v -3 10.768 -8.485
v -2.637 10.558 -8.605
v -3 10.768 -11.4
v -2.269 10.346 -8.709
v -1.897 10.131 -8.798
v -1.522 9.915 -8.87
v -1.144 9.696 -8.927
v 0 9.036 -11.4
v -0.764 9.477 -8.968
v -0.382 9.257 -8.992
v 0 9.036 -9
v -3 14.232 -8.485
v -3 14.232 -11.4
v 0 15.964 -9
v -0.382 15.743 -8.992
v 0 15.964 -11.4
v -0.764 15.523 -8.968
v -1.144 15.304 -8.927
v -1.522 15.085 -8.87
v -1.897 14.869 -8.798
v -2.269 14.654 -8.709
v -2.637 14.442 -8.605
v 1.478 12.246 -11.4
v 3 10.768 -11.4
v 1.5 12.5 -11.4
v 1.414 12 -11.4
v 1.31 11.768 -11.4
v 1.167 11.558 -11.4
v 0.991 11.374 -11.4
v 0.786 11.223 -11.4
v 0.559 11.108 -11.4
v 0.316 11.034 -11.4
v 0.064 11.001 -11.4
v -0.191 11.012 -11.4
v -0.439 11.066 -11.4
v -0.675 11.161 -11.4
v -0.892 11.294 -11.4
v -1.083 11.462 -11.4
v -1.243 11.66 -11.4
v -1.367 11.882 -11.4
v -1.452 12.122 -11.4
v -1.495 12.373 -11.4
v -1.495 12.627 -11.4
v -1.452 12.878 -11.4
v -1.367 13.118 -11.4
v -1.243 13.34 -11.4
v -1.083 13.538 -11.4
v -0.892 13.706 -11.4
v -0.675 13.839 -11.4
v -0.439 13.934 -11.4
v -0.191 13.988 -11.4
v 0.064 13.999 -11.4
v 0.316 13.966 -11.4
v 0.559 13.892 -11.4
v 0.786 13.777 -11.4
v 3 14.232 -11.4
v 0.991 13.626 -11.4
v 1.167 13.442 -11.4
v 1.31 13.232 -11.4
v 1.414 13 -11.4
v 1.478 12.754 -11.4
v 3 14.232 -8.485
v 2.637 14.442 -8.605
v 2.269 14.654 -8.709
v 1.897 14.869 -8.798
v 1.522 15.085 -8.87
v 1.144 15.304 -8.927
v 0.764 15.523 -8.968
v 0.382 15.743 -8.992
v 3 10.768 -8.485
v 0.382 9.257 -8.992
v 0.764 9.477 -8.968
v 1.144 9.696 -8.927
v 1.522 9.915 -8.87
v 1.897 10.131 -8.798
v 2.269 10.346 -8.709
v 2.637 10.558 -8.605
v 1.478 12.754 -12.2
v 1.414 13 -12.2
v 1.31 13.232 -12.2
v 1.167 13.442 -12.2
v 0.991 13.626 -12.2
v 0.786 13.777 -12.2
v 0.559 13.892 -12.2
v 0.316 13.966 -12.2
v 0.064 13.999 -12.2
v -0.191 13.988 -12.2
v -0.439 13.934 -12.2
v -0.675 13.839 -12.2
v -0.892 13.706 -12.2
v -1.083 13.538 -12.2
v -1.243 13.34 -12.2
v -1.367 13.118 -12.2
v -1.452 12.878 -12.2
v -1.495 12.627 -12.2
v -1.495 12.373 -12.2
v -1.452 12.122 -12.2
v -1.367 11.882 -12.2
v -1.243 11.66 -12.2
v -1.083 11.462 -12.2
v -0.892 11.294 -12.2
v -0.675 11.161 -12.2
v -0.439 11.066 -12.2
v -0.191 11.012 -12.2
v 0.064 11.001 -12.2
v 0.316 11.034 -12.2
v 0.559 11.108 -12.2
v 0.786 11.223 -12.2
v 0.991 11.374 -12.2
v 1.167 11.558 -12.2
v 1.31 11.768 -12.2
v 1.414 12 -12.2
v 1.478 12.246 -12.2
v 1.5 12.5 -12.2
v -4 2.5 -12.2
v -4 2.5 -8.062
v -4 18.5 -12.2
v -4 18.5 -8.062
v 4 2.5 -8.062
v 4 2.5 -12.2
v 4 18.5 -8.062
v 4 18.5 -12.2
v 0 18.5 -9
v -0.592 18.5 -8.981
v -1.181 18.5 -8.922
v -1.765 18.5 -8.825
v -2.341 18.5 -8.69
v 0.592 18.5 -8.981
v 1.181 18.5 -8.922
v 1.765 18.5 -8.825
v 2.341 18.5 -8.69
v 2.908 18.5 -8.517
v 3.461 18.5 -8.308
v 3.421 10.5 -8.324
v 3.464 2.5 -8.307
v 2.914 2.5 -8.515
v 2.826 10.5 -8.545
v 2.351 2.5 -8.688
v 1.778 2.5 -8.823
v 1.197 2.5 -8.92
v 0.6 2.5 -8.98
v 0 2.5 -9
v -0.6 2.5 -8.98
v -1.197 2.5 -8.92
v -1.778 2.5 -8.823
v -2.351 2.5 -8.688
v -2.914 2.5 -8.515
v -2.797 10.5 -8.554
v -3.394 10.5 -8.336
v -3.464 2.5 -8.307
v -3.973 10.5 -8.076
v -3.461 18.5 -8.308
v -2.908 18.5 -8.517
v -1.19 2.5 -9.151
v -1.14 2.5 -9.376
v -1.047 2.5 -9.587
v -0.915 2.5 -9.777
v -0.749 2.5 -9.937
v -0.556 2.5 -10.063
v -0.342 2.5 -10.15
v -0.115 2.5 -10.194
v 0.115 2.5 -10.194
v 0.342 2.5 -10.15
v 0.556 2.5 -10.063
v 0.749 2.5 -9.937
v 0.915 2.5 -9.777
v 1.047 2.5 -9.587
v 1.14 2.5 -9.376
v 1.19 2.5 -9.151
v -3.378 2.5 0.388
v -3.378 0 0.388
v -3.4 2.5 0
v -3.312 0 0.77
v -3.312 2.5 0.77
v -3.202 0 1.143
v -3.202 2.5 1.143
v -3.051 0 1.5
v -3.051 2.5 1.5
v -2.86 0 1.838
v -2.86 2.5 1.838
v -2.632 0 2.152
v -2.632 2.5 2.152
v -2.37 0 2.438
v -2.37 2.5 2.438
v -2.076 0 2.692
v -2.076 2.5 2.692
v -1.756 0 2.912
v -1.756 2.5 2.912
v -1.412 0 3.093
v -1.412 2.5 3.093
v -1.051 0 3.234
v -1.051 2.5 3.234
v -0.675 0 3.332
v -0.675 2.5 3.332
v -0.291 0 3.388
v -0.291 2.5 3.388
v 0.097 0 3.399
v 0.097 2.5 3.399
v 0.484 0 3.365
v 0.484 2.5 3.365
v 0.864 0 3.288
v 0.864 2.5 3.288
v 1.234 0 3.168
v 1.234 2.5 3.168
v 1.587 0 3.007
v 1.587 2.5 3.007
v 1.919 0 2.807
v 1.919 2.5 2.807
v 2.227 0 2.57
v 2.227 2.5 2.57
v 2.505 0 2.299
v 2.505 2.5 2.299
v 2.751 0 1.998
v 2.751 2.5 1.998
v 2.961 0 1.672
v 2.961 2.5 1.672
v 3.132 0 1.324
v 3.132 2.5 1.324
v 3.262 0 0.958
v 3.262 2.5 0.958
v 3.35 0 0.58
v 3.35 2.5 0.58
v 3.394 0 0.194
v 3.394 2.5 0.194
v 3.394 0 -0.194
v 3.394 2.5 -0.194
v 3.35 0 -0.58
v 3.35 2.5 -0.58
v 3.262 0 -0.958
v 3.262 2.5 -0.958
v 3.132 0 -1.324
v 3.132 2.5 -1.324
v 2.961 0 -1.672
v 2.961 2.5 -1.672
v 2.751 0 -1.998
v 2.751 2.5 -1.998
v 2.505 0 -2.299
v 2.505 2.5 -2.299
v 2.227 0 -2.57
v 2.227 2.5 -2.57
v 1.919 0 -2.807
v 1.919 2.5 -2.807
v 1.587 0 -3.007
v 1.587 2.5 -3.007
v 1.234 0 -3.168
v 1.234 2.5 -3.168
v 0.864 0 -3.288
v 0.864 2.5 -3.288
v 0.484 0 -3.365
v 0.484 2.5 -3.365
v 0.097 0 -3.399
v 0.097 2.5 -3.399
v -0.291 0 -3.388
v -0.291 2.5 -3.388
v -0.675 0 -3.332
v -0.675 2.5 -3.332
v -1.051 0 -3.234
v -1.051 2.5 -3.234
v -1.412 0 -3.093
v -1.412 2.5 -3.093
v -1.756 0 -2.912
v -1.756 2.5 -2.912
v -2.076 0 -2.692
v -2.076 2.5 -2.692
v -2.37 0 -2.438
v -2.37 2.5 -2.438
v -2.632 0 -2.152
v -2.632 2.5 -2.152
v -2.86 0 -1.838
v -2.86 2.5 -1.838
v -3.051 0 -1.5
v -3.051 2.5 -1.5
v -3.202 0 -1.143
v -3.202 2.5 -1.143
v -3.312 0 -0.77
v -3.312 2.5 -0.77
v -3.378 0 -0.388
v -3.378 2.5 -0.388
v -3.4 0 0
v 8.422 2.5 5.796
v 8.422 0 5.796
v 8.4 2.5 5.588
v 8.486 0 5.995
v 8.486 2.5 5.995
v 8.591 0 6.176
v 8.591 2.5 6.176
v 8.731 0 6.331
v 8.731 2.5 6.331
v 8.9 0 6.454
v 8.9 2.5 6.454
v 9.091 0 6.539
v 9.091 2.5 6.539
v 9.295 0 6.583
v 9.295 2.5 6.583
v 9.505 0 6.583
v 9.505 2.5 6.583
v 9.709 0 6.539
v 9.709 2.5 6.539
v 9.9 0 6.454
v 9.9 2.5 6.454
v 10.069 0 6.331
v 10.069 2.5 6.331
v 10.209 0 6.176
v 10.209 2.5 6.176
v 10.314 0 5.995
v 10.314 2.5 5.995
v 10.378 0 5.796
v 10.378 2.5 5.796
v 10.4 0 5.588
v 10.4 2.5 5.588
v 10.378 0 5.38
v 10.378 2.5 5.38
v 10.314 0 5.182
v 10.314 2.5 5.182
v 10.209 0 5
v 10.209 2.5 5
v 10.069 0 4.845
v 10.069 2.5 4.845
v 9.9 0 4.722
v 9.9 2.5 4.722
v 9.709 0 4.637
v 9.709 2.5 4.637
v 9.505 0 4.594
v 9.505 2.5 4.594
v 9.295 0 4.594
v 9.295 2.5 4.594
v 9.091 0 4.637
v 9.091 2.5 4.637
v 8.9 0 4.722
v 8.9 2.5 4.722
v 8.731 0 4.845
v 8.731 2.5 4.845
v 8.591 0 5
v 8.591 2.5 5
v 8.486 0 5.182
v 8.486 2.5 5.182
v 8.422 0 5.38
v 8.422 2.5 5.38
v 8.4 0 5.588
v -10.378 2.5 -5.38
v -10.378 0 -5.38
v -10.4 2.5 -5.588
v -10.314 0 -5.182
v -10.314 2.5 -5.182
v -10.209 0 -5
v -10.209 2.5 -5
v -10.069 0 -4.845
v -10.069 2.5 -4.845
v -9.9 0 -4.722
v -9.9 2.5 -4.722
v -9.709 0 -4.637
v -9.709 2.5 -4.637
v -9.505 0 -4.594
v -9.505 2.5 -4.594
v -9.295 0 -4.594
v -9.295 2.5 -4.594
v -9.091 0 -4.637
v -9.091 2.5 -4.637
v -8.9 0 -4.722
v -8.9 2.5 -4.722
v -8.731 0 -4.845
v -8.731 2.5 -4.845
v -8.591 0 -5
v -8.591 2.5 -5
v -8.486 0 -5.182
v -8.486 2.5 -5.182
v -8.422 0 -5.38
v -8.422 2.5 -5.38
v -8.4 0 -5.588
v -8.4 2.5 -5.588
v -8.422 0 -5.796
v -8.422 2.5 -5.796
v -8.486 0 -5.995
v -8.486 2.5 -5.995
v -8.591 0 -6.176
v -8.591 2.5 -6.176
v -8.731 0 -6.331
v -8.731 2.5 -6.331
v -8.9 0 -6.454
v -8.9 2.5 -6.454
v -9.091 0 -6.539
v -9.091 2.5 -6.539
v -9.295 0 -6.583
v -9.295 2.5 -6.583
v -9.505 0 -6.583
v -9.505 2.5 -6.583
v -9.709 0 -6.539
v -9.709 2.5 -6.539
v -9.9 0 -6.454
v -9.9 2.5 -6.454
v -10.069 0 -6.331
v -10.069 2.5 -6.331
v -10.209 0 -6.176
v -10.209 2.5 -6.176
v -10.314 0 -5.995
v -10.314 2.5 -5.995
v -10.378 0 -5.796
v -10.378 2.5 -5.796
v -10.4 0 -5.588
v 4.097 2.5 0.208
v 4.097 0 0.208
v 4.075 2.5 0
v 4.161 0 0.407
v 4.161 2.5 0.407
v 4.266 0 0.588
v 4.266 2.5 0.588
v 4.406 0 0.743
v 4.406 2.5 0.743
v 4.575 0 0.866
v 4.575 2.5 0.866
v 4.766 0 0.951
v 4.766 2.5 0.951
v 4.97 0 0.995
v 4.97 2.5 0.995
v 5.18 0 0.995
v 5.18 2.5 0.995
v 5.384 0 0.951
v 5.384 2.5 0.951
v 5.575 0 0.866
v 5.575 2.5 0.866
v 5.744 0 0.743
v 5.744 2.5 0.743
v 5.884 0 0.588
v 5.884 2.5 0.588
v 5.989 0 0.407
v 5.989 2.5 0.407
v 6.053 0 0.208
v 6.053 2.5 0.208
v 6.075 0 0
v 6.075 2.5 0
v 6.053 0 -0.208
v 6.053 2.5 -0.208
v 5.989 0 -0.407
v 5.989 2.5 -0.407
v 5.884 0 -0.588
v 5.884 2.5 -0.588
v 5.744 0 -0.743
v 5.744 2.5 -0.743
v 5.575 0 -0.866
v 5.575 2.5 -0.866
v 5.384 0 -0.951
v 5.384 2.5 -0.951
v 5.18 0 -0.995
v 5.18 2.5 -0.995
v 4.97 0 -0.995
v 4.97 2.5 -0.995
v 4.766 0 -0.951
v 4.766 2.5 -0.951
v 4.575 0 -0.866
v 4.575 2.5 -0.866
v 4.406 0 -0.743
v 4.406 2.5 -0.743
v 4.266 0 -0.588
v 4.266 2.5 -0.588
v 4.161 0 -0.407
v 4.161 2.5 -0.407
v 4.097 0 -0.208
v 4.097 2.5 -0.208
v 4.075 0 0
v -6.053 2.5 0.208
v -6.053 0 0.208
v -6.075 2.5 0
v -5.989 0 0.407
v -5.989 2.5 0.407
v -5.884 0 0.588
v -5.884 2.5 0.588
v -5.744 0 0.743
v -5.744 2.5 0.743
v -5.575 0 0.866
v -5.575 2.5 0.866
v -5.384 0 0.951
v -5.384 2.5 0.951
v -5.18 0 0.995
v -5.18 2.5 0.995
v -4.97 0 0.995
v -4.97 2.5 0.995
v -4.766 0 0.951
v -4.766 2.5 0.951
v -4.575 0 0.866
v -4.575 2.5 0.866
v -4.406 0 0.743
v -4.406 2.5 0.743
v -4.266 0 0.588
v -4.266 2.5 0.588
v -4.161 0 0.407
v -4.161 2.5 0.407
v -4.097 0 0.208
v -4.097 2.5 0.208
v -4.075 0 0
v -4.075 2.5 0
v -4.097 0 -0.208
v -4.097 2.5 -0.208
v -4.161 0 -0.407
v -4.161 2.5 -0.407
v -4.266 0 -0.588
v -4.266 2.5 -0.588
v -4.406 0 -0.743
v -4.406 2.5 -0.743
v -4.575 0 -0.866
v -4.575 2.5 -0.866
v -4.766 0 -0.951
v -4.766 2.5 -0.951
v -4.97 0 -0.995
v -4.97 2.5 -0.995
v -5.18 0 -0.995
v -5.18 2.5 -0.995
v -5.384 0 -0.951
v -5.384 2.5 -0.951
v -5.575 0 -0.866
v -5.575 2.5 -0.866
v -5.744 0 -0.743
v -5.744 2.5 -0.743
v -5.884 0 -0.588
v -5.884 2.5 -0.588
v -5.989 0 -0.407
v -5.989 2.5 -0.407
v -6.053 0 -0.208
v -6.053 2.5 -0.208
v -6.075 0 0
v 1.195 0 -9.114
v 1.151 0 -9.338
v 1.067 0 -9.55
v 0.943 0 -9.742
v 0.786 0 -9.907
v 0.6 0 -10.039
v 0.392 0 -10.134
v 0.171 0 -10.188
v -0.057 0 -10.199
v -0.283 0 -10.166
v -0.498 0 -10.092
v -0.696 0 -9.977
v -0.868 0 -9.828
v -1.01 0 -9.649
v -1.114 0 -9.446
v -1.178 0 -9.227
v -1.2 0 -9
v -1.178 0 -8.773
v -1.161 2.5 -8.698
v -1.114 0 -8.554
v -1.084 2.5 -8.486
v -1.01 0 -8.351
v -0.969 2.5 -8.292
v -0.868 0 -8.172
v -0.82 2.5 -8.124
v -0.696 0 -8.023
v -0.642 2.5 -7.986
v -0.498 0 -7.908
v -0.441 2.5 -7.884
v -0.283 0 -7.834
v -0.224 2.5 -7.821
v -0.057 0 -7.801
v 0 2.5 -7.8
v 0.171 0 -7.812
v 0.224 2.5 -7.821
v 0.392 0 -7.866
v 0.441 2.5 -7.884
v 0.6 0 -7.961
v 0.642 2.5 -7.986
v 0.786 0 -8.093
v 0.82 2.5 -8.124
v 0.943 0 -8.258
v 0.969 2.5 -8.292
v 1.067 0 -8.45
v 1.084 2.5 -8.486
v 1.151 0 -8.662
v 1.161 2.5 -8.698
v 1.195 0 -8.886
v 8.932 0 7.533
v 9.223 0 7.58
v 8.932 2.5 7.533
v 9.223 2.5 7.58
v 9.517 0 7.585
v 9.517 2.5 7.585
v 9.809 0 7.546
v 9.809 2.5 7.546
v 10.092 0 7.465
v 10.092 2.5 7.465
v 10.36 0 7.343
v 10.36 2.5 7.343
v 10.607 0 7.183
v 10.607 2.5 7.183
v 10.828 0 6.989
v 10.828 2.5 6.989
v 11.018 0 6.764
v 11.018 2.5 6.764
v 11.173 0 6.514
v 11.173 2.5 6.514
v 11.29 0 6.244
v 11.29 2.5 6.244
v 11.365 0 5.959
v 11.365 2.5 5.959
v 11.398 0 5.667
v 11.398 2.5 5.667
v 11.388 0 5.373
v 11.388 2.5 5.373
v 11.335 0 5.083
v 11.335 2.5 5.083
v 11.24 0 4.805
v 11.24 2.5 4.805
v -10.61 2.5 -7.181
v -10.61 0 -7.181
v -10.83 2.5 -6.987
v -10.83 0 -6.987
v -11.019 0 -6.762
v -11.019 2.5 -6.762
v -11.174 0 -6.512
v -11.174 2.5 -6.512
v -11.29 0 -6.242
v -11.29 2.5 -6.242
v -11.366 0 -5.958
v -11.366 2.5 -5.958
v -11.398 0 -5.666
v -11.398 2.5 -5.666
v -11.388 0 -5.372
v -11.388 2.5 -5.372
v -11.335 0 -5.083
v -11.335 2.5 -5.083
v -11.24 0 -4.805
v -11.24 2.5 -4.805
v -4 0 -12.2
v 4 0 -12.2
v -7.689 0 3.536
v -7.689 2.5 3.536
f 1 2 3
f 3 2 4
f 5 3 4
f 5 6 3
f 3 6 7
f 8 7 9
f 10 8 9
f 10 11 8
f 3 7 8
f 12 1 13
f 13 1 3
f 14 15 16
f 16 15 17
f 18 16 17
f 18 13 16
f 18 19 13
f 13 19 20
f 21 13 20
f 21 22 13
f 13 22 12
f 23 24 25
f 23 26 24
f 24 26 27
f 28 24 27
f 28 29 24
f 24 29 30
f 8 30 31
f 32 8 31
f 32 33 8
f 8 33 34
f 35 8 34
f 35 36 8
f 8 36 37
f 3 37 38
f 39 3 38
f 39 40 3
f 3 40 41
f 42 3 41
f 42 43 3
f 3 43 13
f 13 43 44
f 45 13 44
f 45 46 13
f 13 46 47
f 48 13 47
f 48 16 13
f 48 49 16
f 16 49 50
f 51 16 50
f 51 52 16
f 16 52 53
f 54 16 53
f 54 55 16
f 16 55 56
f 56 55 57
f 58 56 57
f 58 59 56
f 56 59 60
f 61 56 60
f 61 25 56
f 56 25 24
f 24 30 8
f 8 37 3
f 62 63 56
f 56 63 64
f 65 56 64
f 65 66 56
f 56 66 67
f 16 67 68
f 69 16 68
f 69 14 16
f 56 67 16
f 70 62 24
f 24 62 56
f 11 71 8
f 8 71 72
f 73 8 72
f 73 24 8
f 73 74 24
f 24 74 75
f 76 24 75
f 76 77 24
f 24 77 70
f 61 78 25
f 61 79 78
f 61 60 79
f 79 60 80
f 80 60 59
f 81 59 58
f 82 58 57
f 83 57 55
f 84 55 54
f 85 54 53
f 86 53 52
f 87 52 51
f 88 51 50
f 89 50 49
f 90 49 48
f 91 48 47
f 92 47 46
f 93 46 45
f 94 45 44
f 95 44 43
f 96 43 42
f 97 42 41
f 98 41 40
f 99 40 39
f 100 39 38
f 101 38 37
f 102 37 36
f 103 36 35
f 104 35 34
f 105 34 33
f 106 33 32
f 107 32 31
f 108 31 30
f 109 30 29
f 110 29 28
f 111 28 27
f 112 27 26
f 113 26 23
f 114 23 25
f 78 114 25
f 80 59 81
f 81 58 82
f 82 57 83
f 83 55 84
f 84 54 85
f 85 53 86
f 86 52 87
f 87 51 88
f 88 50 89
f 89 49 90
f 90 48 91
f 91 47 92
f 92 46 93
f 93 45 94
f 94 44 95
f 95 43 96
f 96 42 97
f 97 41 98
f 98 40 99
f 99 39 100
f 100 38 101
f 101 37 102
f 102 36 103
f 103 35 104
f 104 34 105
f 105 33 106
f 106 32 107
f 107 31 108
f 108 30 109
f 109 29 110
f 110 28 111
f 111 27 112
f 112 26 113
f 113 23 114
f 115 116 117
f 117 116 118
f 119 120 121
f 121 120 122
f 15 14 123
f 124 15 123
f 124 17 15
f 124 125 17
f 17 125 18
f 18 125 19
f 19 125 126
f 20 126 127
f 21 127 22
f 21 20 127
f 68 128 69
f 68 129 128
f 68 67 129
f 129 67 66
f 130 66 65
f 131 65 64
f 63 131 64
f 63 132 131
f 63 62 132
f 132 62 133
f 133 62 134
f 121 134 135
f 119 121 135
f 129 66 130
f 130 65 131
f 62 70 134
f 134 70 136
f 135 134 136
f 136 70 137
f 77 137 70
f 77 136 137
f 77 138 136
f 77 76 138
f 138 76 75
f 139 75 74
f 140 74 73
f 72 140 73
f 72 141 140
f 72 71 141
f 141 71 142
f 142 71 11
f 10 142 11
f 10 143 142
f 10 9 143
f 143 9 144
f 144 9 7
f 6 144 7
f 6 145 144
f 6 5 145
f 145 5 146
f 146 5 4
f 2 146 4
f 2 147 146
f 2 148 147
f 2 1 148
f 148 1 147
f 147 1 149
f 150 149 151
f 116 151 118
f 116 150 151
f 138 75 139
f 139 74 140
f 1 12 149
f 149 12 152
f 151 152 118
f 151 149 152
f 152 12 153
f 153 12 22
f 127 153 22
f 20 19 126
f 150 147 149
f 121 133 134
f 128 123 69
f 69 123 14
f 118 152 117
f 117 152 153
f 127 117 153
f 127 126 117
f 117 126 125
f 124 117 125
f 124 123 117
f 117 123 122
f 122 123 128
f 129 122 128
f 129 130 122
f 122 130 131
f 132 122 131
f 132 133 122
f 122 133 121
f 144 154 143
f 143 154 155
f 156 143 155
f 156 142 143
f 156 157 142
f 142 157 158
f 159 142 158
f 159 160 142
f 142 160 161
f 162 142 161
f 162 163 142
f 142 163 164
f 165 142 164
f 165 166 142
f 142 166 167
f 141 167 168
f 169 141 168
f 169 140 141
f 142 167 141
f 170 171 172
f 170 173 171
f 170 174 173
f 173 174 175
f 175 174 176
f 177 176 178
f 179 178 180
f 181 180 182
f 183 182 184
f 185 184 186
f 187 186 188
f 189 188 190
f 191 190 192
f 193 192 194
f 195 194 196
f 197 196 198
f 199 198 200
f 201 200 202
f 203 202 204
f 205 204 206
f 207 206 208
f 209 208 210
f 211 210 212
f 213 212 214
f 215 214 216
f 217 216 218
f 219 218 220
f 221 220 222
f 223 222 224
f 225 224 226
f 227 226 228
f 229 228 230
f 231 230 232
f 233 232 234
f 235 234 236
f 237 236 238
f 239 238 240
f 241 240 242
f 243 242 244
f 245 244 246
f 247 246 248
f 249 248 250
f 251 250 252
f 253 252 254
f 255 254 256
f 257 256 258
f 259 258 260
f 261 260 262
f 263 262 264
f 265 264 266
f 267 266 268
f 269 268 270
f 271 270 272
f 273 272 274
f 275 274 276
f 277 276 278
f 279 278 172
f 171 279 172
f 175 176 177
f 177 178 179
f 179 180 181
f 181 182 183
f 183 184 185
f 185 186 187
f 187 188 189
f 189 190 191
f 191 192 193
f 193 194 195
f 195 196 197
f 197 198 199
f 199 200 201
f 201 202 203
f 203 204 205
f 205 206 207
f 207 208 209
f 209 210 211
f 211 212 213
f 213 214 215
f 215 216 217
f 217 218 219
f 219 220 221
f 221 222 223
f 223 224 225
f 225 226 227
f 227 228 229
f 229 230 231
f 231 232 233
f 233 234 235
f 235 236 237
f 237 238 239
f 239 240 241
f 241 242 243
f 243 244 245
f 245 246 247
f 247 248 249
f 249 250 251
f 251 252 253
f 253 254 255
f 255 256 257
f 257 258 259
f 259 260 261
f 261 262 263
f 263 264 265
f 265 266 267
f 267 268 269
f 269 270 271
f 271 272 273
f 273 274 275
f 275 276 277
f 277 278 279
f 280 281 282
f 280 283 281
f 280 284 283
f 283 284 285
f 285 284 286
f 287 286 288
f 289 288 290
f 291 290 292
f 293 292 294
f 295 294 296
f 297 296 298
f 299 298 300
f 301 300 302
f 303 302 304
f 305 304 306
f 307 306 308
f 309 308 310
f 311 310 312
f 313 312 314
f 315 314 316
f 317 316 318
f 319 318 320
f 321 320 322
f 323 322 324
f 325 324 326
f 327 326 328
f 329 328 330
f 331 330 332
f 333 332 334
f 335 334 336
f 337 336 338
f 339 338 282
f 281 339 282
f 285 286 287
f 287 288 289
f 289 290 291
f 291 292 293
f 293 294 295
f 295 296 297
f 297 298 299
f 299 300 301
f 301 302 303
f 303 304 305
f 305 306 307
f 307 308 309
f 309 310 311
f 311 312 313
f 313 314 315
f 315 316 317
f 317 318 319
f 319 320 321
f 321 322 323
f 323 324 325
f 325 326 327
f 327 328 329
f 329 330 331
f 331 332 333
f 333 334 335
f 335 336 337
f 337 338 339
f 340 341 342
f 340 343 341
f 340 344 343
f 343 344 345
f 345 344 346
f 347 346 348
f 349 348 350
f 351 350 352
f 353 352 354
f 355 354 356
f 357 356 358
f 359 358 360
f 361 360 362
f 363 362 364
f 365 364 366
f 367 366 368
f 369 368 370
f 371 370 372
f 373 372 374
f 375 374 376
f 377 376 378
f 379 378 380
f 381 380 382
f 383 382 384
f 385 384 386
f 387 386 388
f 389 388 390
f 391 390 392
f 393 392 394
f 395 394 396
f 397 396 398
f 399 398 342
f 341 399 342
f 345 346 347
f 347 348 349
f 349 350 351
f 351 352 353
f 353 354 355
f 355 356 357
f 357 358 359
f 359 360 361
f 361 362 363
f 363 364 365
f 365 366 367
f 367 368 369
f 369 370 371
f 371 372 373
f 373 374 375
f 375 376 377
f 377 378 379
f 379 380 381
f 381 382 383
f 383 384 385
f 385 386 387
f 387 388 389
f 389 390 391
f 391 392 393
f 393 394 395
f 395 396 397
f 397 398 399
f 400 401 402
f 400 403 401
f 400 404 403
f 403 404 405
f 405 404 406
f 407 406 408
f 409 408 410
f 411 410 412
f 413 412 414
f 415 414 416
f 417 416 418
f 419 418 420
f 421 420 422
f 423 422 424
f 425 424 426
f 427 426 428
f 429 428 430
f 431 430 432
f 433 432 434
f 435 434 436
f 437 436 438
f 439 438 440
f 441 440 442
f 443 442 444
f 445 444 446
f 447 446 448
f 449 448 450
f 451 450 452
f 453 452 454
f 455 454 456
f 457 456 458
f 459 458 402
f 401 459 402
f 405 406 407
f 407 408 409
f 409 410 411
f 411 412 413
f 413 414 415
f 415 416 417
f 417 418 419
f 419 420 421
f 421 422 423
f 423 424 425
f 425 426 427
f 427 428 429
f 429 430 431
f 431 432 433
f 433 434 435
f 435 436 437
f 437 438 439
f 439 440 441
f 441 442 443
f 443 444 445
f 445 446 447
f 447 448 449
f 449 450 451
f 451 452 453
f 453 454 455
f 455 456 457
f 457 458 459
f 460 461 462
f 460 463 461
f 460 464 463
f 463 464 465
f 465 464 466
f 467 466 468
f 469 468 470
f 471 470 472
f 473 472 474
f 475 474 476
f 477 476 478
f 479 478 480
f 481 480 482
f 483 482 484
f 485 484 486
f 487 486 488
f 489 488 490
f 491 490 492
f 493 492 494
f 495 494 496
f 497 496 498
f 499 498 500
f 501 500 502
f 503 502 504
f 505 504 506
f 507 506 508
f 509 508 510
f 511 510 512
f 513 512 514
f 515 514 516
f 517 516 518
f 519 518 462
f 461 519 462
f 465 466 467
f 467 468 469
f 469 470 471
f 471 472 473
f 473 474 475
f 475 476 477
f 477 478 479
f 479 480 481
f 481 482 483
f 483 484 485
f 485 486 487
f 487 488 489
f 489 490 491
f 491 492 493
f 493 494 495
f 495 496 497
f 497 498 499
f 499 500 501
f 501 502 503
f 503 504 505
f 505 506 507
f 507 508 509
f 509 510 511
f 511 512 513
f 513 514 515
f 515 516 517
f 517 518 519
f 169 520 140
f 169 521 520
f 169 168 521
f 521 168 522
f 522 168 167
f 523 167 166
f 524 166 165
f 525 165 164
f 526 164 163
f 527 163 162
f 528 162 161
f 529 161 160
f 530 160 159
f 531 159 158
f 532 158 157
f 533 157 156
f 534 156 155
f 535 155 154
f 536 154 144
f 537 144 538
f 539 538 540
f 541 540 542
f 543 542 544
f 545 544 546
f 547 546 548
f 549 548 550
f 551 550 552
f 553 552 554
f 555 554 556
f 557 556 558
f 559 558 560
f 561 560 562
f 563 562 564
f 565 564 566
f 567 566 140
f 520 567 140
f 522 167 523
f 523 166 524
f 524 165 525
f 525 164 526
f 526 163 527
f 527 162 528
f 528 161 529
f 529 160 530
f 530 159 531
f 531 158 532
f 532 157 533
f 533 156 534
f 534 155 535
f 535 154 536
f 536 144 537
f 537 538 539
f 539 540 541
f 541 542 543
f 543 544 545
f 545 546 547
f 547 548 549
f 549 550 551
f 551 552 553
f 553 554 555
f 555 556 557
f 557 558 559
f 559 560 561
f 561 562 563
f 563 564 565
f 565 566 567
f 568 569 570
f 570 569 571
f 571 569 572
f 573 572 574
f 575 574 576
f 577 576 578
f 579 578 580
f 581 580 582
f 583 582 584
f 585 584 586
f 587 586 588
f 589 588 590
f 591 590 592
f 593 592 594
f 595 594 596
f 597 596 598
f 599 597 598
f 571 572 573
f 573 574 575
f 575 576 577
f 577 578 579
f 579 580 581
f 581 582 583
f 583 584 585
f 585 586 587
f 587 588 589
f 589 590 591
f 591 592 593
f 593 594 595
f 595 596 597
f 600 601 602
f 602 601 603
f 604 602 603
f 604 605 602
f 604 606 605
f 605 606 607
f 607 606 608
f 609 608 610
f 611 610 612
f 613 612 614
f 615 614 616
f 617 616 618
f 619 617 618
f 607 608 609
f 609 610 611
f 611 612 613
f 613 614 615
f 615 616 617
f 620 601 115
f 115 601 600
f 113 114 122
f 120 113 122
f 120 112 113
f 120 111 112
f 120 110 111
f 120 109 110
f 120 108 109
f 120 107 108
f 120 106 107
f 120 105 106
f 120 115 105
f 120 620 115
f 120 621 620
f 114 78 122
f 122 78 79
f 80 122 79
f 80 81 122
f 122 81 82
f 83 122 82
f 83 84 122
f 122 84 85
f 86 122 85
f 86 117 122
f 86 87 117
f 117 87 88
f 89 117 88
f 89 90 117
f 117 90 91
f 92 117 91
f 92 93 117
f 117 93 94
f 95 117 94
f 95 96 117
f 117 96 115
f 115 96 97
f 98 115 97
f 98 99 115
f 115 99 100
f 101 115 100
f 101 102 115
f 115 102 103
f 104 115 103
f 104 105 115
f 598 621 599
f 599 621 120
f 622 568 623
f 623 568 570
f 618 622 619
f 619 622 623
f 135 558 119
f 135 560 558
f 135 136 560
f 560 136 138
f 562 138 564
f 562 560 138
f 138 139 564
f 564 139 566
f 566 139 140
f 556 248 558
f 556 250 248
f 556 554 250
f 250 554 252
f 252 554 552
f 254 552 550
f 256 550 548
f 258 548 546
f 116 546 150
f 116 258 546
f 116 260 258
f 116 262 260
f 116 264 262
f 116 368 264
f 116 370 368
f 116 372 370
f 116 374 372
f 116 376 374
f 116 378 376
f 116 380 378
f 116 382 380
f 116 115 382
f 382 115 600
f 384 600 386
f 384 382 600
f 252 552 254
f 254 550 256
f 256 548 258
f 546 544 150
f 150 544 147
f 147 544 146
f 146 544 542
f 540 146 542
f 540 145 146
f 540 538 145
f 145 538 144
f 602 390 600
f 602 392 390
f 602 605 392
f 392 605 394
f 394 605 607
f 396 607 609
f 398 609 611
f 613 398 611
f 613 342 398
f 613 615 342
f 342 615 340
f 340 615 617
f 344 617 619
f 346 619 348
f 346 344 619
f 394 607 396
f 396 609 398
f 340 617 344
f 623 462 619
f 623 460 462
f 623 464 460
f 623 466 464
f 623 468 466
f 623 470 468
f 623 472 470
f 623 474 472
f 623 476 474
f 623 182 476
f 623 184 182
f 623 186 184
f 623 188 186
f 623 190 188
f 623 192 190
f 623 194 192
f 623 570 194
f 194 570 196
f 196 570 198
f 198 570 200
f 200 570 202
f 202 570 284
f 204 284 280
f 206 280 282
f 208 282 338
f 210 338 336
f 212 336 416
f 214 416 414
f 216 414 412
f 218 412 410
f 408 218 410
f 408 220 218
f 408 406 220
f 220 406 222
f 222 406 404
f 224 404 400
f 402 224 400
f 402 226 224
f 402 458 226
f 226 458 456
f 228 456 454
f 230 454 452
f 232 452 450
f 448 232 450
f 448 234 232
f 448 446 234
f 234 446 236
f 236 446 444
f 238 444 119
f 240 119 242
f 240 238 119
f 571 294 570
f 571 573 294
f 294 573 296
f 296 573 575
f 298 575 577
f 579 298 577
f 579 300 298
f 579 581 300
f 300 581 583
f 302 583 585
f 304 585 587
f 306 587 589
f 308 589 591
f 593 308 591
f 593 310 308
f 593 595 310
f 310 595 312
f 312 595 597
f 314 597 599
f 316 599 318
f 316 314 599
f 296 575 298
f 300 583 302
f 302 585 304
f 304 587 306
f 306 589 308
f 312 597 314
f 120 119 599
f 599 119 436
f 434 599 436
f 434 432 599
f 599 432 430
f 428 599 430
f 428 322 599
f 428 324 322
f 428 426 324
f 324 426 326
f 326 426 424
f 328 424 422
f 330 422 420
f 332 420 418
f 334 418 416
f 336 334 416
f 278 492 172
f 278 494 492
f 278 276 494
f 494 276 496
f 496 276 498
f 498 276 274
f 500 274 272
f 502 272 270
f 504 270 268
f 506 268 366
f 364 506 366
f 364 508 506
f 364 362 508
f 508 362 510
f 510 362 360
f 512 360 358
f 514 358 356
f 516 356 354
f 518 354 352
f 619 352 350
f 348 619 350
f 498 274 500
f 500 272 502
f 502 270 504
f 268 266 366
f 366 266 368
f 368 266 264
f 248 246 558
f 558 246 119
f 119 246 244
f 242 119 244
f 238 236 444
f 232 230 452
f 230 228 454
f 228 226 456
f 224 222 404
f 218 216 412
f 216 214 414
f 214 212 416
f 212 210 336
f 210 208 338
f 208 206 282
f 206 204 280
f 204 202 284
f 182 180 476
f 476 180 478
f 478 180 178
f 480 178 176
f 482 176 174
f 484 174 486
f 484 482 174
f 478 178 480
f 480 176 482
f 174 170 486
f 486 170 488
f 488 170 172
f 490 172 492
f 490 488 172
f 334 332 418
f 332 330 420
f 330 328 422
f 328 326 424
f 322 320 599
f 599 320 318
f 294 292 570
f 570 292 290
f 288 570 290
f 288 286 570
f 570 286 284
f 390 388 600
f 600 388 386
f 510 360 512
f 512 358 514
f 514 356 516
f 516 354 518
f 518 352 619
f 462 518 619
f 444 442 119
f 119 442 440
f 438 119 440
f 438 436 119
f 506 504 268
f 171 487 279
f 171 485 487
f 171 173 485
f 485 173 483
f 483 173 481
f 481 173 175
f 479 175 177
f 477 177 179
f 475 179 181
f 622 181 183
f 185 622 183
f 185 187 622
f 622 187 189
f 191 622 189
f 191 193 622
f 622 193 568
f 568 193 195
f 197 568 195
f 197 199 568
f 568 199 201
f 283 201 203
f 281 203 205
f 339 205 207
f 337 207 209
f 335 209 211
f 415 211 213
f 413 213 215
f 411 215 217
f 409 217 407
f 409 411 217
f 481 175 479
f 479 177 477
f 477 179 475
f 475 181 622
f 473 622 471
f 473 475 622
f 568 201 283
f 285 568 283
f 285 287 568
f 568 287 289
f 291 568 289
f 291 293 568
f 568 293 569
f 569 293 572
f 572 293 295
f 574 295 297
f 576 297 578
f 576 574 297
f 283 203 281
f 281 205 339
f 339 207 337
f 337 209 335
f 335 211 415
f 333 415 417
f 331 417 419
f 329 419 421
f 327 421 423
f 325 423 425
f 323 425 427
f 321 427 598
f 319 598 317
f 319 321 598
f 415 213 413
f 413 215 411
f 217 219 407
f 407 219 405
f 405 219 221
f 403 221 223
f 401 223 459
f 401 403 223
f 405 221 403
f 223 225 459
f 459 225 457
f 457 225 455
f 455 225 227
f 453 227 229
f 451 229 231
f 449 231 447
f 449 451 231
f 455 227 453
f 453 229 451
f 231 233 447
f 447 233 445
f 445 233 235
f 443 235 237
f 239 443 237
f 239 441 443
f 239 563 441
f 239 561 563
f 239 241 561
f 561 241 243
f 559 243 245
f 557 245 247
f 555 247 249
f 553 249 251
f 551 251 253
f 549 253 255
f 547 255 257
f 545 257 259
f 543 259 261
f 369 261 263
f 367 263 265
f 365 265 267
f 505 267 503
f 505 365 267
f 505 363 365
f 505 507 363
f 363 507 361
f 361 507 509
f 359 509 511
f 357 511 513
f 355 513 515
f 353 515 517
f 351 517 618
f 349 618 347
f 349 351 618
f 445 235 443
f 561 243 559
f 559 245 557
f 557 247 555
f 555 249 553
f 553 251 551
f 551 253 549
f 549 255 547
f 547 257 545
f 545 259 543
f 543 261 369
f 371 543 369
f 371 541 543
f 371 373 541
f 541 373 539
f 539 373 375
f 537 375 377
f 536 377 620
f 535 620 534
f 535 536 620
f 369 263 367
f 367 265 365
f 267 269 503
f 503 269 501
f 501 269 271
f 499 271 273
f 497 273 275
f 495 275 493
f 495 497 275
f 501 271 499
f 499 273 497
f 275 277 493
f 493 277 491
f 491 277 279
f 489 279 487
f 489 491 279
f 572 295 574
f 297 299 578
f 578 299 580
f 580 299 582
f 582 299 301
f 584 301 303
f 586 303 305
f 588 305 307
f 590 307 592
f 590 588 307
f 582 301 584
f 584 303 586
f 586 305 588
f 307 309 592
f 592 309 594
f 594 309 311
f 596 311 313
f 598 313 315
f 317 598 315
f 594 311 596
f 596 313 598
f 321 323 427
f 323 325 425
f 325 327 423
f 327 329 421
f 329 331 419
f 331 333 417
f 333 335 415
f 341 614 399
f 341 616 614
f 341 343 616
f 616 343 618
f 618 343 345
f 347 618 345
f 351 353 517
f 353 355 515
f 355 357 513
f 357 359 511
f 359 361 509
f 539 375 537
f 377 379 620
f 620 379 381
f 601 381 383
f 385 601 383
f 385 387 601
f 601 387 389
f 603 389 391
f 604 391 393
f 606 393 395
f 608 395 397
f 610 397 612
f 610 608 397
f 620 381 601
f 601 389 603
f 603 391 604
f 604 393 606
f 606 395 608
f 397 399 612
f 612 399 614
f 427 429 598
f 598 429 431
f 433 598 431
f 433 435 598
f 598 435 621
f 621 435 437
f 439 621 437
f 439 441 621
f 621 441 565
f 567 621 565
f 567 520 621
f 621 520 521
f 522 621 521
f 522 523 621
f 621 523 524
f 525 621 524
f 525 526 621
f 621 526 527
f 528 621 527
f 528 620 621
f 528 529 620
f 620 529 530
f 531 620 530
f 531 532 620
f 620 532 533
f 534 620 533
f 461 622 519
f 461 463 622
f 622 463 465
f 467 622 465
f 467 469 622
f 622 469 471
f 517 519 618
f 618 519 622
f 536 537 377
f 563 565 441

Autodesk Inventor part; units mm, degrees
ref_plane "YZ Plane" through (0, 0, 0) normal (1, 0, 0) x (0, 1, 0)
ref_plane "XZ Plane" through (0, 0, 0) normal (0, 1, 0) x (-1, 0, 0)
sketch "sk_base" plane through (0, 0, 0) normal (0, 1, 0) x (-1, 0, 0)
  line L0 (16.4021, 0) -> (-16.8737, 0) projected
  line L1 (0, -22.2) -> (0, 14.2) projected
  circle A0 centre (0, 0) radius 8.8 construction
  circle A1 centre (0, -9) radius 1.2
  circle A2 centre (5.075, 0) radius 1
  circle A3 centre (-5.075, 0) radius 1
  circle A4 centre (0, 0) radius 3.4
  line L2 (9.4, -5.5883) -> (-9.4, 5.5883) construction
  circle A5 centre (9.4, -5.5883) radius 1 construction
  circle A6 centre (-9.4, 5.5883) radius 1 construction
  circle A7 centre (0, 0) radius 9 construction
  circle A8 centre (0, -9) radius 8 construction
  circle A9 centre (9.4, -5.5883) radius 2 construction
  circle A10 centre (-9.4, 5.5883) radius 2 construction
  line L3 (-8.6663, 7.4488) -> (8.9868, 0.4877)
  line L4 (8.9868, 0.4877) -> (11.2402, -4.8048)
  line L5 (4, -8.0623) -> (4, -12.2) construction
  line L6 (4, -12.2) -> (-4, -12.2)
  line L7 (-4, -12.2) -> (-4, -8.0623) construction
  line L8 (4, -9) -> (-4, -9) construction
  line L9 (4, -12.2) -> (10.6095, -7.1811)
  arc A11 (10.6095, -7.1811) -> (11.2402, -4.8048) centre (9.4, -5.5883) ccw
  line L10 (-11.2402, 4.8048) -> (-6.8151, -5.5883)
  line L11 (9.4, -5.5883) -> (-6.8151, -5.5883) construction
  arc A12 (-8.6663, 7.4488) -> (-11.2402, 4.8048) centre (-9.4, 5.5883) ccw
  line L12 (7.6889, 3.536) -> (-8.9324, 7.5328)
  line L13 (-4, -12.2) -> (-6.8151, -5.5883)
  line L14 (7.6889, 3.536) -> (8.9868, 0.4877)
  circle A13 centre (9.4, -5.5883) radius 1
  circle A14 centre (-9.4, 5.5883) radius 1
  dimension "d0" = 17.6
  dimension "d1" = 10.15
  dimension "d2" = 2
  dimension "d3" = 6.8
  dimension "servo_dowel_diameter" = 2.4
  dimension "servo_distance_gearcenters" = 9
  dimension "d7" = 18
  dimension "d8" = 16
  dimension "d10" = 4
  dimension "d11" = 3.2
  dimension "d12" = 8
  dimension "d13" = 8
  dimension "d16" = 9.4
  dimension "m2_screw_selfthreading_hole_diam" = 2
extrude "ext_front" add sketch "sk_base" along normal blind 2.5 contours L4 A11 L9 L6 L1 A1 A4 L0 A2 | L0 A2 A4 L1 L3 L4 | L3 L1 L12 L14 | L3 A12 L12 L1 | L1 A4 L0 A3 L10 A12 L3 | L1 A1 L6 L13 L10 L0 A3 A4
sketch "Sketch2" plane through (0, 2.5, 0) normal (0, 1, 0) x (1, 0, 0)
  line L0 (-4, 8.0623) -> (-4, 12.2) construction
  line L1 (-4, 9) -> (4, 9) construction
  line L2 (4, 12.2) -> (4, 8.0623) construction
  circle A0 centre (0, 0) radius 9 construction
  line L3 (4, 12.2) -> (-4, 12.2)
  line L4 (-4, 12.2) -> (-4, 9)
  line L5 (-4, 9) -> (4, 9)
  line L6 (4, 9) -> (4, 12.2)
  arc A1 (4, 8.0623) -> (-4, 8.0623) centre (0, 0) ccw
  line L7 (4, 8.0623) -> (4, 9)
  line L8 (-4, 8.0623) -> (-4, 9)
extrude "ext_backsupport" add sketch "Sketch2" along normal blind 16
ref_plane "Work Plane1" through (0, 18.5, -9) normal (0, 0, 1) x (1, 0, 0)
sketch "sk_mounthole" plane through (0, 18.5, -9) normal (0, 0, 1) x (1, 0, 0)
  line L0 (-1.1973, -16) -> (1.1973, -16) projected
  line L1 (0, -22.2) -> (0, 3.7) projected
  circle A0 centre (0, -6) radius 1.5
  line L2 (0, -2.5359) -> (-3, -4.2679)
  line L3 (-3, -4.2679) -> (-3, -7.7321)
  line L4 (-3, -7.7321) -> (0, -9.4641)
  line L5 (0, -9.4641) -> (3, -7.7321)
  line L6 (3, -7.7321) -> (3, -4.2679)
  line L7 (3, -4.2679) -> (0, -2.5359)
  line L8 (-3, -6) -> (3, -6) construction
  point P0 (0, -18.5)
  dimension "m3_screw_max_diam" = 3
  dimension "d23" = 120
  dimension "d24" = 10
extrude "ext_mounthole" cut sketch "sk_mounthole" along normal through all both and the other way through all contours A0 L1 | L1 A0
extrude "ext_mountnut" cut sketch "sk_mounthole" along normal blind 10 and the other way blind 2.4
equation "\"d2\" = screw_m2_bore_selfthreading"
equation "\"servo_dowel_diameter\" = general_dowel_diameter"
equation "\"m2_screw_selfthreading_hole_diam\" = screw_m2_bore_selfthreading"
equation "\"screw_m2_bore_selfthreading\" = 2"
equation "\"general_dowel_diameter\" = 2.4"
properties part number "empty"
